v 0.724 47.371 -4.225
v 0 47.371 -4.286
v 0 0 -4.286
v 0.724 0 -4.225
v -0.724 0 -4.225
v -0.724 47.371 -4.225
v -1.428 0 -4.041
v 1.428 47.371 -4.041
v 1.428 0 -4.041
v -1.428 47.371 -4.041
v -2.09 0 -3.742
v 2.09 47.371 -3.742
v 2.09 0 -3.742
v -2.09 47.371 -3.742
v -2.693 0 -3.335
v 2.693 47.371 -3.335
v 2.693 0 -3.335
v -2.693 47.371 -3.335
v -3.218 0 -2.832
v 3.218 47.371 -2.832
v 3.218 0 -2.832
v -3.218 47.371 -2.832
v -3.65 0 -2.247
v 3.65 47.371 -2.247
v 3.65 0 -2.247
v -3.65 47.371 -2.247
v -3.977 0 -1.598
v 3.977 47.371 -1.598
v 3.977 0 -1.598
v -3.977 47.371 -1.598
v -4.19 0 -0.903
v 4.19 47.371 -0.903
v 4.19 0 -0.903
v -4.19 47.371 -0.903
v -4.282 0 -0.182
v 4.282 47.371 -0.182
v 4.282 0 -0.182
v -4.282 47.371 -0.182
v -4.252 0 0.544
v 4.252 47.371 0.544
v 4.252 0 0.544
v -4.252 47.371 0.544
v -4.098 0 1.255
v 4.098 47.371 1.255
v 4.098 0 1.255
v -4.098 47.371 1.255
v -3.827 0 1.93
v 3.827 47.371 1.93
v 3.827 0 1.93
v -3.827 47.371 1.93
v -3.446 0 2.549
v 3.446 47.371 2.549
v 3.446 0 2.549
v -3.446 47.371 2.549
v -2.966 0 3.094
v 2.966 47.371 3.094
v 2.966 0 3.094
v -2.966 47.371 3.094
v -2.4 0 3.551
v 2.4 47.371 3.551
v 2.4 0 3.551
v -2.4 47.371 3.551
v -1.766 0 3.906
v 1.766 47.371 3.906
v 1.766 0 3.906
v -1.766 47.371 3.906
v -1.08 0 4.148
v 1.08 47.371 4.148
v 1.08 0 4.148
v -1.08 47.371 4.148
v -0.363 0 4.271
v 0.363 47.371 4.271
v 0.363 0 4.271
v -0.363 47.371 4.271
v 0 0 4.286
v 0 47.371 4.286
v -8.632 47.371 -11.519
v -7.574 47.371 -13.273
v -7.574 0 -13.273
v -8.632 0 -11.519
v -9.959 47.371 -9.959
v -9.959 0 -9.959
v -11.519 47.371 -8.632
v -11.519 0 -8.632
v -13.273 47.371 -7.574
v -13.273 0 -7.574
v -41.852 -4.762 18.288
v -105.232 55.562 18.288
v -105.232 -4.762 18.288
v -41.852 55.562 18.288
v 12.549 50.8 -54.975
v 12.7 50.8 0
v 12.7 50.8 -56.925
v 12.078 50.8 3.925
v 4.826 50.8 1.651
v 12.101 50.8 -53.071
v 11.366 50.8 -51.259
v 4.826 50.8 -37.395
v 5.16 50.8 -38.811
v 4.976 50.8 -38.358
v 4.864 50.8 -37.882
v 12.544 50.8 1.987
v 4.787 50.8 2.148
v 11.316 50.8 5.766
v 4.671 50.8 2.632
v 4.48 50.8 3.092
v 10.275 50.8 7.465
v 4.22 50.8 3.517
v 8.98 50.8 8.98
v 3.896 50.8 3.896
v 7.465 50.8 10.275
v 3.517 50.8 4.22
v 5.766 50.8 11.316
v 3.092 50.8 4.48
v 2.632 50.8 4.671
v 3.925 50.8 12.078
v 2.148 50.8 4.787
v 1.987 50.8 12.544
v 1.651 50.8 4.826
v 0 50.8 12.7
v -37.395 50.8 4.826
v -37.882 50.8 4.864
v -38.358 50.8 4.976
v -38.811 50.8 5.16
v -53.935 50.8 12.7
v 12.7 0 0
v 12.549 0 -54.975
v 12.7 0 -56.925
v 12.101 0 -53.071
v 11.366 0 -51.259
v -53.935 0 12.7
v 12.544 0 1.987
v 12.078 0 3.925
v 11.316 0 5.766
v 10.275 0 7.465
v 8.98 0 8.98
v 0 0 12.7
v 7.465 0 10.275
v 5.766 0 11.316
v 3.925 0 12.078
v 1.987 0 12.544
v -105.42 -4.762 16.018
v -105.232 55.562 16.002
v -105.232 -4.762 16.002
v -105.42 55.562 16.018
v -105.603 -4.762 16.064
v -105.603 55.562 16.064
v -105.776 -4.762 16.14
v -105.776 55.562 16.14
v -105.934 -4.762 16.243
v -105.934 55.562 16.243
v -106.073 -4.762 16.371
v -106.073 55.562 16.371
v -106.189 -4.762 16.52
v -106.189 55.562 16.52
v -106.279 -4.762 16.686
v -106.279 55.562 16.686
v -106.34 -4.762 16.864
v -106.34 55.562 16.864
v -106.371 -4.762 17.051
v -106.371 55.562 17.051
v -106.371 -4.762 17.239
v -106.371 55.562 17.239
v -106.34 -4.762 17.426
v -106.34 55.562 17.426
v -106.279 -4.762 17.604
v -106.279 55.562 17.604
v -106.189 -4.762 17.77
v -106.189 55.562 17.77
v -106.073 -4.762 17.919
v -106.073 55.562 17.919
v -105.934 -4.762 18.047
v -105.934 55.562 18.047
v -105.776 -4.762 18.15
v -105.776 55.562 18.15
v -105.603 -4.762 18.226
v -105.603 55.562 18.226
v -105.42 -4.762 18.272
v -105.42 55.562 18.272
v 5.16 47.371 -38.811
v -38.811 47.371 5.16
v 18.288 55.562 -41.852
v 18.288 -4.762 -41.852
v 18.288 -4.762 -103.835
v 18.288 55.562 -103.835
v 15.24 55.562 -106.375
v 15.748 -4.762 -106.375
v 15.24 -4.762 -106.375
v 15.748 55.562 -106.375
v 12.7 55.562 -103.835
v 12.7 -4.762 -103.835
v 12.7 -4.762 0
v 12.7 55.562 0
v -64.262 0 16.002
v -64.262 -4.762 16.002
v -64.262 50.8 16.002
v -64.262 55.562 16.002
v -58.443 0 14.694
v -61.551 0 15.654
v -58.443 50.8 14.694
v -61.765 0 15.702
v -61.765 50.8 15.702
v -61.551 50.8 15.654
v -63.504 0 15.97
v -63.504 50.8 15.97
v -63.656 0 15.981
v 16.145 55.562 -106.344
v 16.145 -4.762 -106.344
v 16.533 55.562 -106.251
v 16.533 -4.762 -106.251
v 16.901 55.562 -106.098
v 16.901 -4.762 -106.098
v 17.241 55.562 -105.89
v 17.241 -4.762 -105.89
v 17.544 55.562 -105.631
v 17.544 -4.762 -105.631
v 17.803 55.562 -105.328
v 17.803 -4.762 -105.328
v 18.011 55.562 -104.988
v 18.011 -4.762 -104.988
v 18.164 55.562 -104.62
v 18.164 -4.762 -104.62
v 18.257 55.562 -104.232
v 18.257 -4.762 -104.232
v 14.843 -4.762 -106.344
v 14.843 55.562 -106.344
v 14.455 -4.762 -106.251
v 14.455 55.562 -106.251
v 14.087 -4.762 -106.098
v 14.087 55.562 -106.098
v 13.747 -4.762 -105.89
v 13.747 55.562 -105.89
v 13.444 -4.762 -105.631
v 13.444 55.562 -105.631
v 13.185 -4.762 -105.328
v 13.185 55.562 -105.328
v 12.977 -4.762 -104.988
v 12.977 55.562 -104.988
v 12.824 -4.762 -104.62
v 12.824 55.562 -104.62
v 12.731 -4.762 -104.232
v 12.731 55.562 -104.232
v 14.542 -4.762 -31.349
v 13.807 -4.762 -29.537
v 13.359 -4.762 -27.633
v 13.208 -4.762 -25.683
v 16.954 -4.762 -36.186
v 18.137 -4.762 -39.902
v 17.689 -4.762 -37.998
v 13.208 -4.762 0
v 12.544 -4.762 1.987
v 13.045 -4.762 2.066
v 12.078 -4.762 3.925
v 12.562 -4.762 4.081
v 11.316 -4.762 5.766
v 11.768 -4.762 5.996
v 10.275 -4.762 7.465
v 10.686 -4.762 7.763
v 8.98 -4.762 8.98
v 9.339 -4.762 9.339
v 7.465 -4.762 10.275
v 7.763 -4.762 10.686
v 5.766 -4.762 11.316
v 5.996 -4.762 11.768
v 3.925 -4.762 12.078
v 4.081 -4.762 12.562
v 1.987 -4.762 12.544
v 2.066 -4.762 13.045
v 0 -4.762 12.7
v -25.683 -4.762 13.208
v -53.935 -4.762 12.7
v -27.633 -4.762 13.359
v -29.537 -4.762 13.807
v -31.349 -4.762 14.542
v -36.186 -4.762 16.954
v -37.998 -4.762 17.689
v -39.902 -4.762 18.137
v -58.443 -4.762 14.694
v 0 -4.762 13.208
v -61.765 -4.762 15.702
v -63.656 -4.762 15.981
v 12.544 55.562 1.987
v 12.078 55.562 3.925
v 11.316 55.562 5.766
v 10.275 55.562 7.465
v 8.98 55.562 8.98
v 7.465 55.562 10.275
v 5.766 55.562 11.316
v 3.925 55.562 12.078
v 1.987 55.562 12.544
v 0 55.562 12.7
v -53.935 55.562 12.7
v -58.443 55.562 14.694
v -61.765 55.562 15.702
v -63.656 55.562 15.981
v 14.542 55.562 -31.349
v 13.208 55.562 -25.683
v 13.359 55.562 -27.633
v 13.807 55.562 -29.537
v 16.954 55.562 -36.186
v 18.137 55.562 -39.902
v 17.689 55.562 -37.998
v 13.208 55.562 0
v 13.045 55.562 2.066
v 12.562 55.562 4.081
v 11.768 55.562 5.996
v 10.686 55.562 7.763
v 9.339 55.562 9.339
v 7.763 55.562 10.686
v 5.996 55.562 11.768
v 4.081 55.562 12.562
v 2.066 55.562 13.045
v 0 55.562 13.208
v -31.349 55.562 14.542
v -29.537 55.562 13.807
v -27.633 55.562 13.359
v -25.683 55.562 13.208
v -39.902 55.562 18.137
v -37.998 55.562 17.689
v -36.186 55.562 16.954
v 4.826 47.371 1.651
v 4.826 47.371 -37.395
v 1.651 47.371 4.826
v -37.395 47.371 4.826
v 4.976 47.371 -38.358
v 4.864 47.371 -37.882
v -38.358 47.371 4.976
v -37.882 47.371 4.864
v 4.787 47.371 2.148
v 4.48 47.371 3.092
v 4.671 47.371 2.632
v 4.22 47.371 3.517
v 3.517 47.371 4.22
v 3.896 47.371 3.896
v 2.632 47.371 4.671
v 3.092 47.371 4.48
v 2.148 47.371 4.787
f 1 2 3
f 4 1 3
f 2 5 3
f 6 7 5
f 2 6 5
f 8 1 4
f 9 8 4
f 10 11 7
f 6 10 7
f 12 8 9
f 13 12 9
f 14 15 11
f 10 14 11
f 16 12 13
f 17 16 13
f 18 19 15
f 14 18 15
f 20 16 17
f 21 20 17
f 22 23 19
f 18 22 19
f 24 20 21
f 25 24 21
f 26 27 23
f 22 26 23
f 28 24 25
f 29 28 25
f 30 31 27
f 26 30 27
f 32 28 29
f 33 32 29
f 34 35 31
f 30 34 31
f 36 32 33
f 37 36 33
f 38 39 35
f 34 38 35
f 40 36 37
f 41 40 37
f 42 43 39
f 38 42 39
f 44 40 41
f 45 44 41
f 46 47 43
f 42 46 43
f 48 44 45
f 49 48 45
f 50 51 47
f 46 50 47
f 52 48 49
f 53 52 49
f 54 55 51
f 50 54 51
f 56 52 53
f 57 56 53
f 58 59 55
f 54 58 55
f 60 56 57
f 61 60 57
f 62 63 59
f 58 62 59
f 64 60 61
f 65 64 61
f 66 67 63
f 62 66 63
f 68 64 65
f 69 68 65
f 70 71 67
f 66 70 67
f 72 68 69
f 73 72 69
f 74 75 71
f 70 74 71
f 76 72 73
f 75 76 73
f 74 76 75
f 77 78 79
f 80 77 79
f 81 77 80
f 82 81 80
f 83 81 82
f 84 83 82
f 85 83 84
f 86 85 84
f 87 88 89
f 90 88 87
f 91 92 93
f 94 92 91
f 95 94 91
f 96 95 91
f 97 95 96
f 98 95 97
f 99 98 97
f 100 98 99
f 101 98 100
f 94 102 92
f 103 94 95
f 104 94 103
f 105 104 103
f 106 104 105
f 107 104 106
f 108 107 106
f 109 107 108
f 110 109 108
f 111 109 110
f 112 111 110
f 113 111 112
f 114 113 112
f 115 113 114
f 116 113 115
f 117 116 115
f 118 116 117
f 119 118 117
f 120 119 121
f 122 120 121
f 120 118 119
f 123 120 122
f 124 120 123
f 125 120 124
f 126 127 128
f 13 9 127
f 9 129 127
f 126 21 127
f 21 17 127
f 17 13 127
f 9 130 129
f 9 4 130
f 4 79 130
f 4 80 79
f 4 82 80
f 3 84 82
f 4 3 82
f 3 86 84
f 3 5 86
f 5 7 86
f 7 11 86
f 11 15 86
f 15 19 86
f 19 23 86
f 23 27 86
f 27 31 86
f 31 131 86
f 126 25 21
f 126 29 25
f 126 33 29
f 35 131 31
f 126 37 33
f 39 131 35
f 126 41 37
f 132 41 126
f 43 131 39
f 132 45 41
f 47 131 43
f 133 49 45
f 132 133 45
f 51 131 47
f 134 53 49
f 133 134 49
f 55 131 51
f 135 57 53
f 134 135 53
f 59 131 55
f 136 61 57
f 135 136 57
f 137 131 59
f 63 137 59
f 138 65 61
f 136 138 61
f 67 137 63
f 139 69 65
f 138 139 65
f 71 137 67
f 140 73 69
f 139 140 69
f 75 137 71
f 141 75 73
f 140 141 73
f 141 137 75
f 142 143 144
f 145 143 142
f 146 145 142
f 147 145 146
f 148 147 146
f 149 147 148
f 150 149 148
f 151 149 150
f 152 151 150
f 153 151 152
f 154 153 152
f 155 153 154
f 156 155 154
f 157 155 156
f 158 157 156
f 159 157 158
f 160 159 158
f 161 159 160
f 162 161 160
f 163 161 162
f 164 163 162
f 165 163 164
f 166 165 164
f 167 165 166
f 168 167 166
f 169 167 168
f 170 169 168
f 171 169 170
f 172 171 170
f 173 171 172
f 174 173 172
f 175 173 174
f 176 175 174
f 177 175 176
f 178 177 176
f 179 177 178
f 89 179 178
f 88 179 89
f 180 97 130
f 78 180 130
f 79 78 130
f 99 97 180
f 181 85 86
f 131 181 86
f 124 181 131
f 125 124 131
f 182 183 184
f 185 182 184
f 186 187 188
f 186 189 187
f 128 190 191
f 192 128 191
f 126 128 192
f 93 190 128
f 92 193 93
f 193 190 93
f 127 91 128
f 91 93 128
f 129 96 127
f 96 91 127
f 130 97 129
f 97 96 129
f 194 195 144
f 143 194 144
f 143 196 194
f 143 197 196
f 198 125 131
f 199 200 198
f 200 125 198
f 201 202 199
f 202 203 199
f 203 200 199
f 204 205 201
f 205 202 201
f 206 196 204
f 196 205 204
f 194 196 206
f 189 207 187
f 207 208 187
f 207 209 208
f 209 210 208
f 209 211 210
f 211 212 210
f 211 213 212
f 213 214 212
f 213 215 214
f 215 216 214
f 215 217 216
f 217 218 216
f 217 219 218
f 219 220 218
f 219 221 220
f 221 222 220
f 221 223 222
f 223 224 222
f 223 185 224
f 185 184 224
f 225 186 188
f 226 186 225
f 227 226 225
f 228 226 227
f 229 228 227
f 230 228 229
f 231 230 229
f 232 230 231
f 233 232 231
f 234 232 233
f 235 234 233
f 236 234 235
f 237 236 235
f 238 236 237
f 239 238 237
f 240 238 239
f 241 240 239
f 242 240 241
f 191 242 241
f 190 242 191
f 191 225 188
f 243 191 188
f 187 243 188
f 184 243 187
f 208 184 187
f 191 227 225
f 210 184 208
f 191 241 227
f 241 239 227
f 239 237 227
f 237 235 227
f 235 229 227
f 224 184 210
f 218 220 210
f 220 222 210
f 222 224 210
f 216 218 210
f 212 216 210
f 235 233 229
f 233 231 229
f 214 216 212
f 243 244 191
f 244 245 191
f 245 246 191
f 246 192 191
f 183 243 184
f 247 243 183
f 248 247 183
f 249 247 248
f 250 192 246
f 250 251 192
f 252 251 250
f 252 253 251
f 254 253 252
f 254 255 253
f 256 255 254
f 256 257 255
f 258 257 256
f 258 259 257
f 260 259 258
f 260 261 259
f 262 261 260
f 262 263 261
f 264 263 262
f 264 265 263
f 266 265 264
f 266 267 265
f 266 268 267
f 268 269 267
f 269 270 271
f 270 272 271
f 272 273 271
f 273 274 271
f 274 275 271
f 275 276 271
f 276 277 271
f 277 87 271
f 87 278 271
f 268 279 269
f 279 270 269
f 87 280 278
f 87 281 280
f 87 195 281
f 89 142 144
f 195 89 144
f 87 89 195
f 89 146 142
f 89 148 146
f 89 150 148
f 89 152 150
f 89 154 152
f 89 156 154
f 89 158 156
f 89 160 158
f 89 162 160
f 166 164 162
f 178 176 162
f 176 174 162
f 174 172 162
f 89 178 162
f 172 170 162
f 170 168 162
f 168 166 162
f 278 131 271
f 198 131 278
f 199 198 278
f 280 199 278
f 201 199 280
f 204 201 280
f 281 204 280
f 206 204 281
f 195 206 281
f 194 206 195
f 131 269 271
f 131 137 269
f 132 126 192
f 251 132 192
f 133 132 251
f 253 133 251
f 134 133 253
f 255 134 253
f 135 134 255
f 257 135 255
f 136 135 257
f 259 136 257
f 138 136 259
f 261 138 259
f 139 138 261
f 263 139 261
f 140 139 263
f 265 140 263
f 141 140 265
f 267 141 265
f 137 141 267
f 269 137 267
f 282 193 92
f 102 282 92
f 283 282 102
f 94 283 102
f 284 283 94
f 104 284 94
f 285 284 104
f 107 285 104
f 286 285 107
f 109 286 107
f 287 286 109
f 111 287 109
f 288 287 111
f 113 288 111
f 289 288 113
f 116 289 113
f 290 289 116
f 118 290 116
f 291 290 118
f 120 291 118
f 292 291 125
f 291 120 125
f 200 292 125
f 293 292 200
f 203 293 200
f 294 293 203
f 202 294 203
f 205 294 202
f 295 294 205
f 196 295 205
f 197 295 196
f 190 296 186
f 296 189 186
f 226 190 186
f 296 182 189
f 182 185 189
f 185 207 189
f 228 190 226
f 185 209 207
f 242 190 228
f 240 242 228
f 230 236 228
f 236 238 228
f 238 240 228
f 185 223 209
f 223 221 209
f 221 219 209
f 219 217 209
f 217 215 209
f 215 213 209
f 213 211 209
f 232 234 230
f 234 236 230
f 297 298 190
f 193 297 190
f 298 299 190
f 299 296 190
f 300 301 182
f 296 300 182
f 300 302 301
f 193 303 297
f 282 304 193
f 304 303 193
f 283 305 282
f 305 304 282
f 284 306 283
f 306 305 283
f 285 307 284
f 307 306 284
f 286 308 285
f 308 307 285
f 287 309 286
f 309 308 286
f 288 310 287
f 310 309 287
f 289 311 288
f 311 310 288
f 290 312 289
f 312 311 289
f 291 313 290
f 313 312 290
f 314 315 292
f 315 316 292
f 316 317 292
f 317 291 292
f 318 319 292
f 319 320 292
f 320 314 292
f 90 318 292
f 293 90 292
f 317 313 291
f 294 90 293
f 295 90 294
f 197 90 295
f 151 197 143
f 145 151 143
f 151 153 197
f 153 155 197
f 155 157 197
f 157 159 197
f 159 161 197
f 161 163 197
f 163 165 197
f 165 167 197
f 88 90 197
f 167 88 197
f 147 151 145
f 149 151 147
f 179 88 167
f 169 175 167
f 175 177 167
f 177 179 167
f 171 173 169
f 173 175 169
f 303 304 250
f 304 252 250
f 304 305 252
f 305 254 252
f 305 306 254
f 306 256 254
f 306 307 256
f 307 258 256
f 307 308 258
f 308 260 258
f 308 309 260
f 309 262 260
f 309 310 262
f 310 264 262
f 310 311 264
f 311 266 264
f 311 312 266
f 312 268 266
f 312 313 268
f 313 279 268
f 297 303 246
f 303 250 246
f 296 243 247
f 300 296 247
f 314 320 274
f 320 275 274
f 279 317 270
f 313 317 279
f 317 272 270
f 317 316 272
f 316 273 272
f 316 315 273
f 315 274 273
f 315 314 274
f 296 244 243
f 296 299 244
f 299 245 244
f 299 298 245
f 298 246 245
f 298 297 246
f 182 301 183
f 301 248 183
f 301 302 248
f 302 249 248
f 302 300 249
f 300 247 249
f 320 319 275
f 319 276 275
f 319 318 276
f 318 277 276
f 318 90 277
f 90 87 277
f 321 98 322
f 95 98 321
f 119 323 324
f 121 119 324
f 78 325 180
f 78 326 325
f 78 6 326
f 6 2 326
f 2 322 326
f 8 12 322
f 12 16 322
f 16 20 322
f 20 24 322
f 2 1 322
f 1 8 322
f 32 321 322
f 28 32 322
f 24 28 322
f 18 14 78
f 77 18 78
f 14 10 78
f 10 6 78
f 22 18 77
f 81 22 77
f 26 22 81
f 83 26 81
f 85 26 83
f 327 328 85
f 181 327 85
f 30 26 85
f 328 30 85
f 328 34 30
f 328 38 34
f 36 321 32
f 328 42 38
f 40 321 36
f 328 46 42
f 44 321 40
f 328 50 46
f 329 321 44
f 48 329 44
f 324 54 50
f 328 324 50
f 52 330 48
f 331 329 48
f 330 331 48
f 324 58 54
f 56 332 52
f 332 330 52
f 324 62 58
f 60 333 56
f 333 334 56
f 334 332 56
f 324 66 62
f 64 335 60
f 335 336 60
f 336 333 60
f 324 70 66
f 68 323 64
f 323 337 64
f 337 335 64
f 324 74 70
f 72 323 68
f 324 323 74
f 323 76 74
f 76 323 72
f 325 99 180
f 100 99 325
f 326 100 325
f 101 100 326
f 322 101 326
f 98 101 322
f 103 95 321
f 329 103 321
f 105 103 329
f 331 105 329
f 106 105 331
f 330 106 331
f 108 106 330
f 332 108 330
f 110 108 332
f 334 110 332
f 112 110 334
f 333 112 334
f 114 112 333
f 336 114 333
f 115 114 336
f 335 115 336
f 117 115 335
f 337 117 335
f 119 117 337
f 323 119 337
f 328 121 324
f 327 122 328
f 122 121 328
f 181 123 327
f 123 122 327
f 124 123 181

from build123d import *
from build123d.topology import SkipClean

# Parameters (mm, degrees)
SKETCH1_R           = 4.28625
BOSS_EXTRUDE1_DEPTH = 50.8
FILLET8_R           = 12.7
SKETCH2_W           = 42.1132
SKETCH2_H           = 3.302
CUT_EXTRUDE1_DEPTH  = 159.782890609
FILLET3_R           = 2.54
FILLET6_RADIUS      = 1.143
FILLET6_LENGTH      = 50.8
BOSS_EXTRUDE2_DEPTH = 30.1625
CUT_EXTRUDE2_DEPTH  = 163.081683202
FILLET7_R           = 12.7
SKETCH7_W           = 42.968170869
SKETCH7_H           = 42.968170869
CUT_EXTRUDE3_DEPTH  = 3.429
FILLET9_R           = 3.175


with BuildPart() as part:
    # Sketch1 → Boss-Extrude1 (new body)
    with BuildSketch(Plane(origin=(0, 0, 0), x_dir=(1, 0, 0), z_dir=(0, 1, 0))):
        with BuildLine():
            Line((12.7, 53.934971632), (-9.469611004, 9.469611004))
            Line((-9.469611004, 9.469611004), (-53.934971632, -12.7))
            Line((-53.934971632, -12.7), (-106.3752, -12.7))
            Line((-106.3752, -12.7), (-106.3752, -18.288))
            Line((-106.3752, -18.288), (0, -18.288))
            ThreePointArc((0, -18.288), (12.931568814, -12.931568814), (18.288, 0))
            Line((18.288, 0), (18.288, 106.3752))
            Line((18.288, 106.3752), (12.7, 106.3752))
            Line((12.7, 106.3752), (12.7, 53.934971632))
        make_face()
        with Locations(Location((0, 0, 0), (0, 0, 270))):
            Circle(SKETCH1_R, mode=Mode.SUBTRACT)
    extrude(amount=BOSS_EXTRUDE1_DEPTH)

    # Fillet8
    fillet8_edges = [part.edges().sort_by_distance(p)[0] for p in [
        (12.7, 25.4, -53.934971632),
        (-9.469611004, 25.4, -9.469611004),
    ]]
    fillet(fillet8_edges, radius=FILLET8_R)

    # Sketch2 → Cut-Extrude1 (cut, through all)
    with BuildSketch(Plane(origin=(0, 50.8, 0), x_dir=(1, 0, 0), z_dir=(0, 1, 0))):
        with Locations((-85.3186, -14.351)):
            Rectangle(SKETCH2_W, SKETCH2_H)
        with BuildLine():
            Line((-53.934971632, -12.7), (-64.262, -12.7))
            Line((-64.262, -12.7), (-64.262, -16.002))
            add(Edge.make_bspline(
                [(-53.934971632, -12.7), (-60.557759049, -16.002), (-64.262, -16.002)],
                knots=[0, 0, 0, 1, 1, 1], degree=2))
        make_face()
    extrude(amount=-CUT_EXTRUDE1_DEPTH, mode=Mode.SUBTRACT)

    # Fillet3
    fillet3_edges = [part.edges().sort_by_distance(p)[0] for p in [
        (12.7, 25.4, -106.3752),
        (18.288, 25.4, -106.3752),
    ]]
    fillet(fillet3_edges, radius=FILLET3_R)

    # Fillet6: full round fillet: the end face becomes a half cylinder, R = half its width
    fillet6_face = Plane((-106.3752, 25.4, 17.145), x_dir=(0, 1, 0), z_dir=(-1, 0, 0))  # on the end face: x along it, z out of the body
    fillet6_slab = fillet6_face.offset(-FILLET6_RADIUS / 2) * Box(FILLET6_LENGTH, 2 * FILLET6_RADIUS, FILLET6_RADIUS, mode=Mode.PRIVATE)  # the body's end, R deep
    fillet6_round = Plane((-105.2322, 25.4, 17.145), x_dir=(-1, 0, 0), z_dir=(0, 1, 0)) * Cylinder(FILLET6_RADIUS, FILLET6_LENGTH, mode=Mode.PRIVATE)  # its axis R under the face
    add(fillet6_slab - fillet6_round, mode=Mode.SUBTRACT)

    # Sketch3 → Boss-Extrude2 (add, symmetric)
    with SkipClean():  # the faces are left unmerged after this step: merging them gives an invalid solid
        with BuildSketch(Plane(origin=(0, 25.4, 0), x_dir=(1, 0, 0), z_dir=(0, 1, 0))):
            with BuildLine():
                Line((15.748, 106.3752), (15.24, 106.3752))
                ThreePointArc((15.24, 106.3752), (13.443948776, 105.631251224), (12.7, 103.8352))
                Line((12.7, 103.8352), (12.7, 0))
                ThreePointArc((12.7, 0), (8.980256121, -8.980256121), (0, -12.7))
                Line((0, -12.7), (-53.934971632, -12.7))
                add(Edge.make_bspline(
                    [(-53.934971632, -12.7), (-60.557759049, -16.002), (-64.262, -16.002)],
                    knots=[0, 0, 0, 1, 1, 1], degree=2))
                Line((-64.262, -16.002), (-105.2322, -16.002))
                ThreePointArc((-105.2322, -16.002), (-106.3752, -17.145), (-105.2322, -18.288))
                Line((-105.2322, -18.288), (0, -18.288))
                ThreePointArc((0, -18.288), (12.931568814, -12.931568814), (18.288, 0))
                Line((18.288, 0), (18.288, 103.8352))
                ThreePointArc((18.288, 103.8352), (17.544051224, 105.631251224), (15.748, 106.3752))
            make_face()
        extrude(amount=BOSS_EXTRUDE2_DEPTH, both=True)
    add(part.part.scale(1), mode=Mode.REPLACE)  # the faces are merged on a copy

    # Sketch6 → Cut-Extrude2 (cut, through all)
    with BuildSketch(Plane(origin=(0, 55.5625, 0), x_dir=(1, 0, 0), z_dir=(0, 1, 0))):
        with BuildLine():
            Line((-38.862, -18.288), (0, -18.288))
            ThreePointArc((0, -18.288), (12.931568814, -12.931568814), (18.288, 0))
            Line((18.288, 0), (18.288, 38.862))
            Line((18.288, 38.862), (13.208, 28.673096282))
            Line((13.208, 28.673096282), (13.208, 0))
            ThreePointArc((13.208, 0), (9.339466366, -9.339466366), (0, -13.208))
            Line((0, -13.208), (-28.673096282, -13.208))
            Line((-28.673096282, -13.208), (-38.862, -18.288))
        make_face()
    extrude(amount=-CUT_EXTRUDE2_DEPTH, mode=Mode.SUBTRACT)

    # Fillet7
    fillet7_edges = [part.edges().sort_by_distance(p)[0] for p in [
        (13.208, 25.4, -28.673096282),
        (18.288, 25.4, -38.862),
        (-38.862, 25.4, 18.288),
        (-28.673096282, 25.4, 13.208),
    ]]
    fillet(fillet7_edges, radius=FILLET7_R)

    # Sketch7 → Cut-Extrude3 (cut)
    with BuildSketch(Plane(origin=(0, 50.8, 0), x_dir=(1, 0, 0), z_dir=(0, 1, 0))):
        with Locations((-16.658085435, 16.658085435)):
            Rectangle(SKETCH7_W, SKETCH7_H)
    extrude(amount=-CUT_EXTRUDE3_DEPTH, mode=Mode.SUBTRACT)

    # Fillet9
    fillet9_edges = [part.edges().sort_by_distance(p)[0] for p in [
        (4.826, 49.0855, -38.142170869),
        (4.826, 49.0855, 4.826),
        (-38.142170869, 49.0855, 4.826),
    ]]
    fillet(fillet9_edges, radius=FILLET9_R)


solid = part.part
